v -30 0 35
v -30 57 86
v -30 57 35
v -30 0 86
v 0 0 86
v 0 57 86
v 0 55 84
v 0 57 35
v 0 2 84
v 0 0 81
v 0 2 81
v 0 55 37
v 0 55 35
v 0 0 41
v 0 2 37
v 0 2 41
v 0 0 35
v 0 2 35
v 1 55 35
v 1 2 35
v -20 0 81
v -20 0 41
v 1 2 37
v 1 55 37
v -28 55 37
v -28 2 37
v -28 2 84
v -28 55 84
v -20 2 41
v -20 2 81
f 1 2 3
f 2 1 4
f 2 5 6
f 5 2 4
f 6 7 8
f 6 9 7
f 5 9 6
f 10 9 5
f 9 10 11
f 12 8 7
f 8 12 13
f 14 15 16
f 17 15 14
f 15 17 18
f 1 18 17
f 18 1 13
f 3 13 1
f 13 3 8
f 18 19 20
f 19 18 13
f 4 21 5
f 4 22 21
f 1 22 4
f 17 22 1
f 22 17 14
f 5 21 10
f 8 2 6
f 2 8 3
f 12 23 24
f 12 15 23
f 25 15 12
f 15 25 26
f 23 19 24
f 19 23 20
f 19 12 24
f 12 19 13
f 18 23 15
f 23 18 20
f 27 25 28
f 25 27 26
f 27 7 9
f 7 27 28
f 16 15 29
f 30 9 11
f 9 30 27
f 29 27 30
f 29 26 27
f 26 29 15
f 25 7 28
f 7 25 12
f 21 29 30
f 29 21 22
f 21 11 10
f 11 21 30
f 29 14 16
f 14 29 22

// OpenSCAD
difference() {
    union() {
        translate([-30, 0, 35]) {
            cube([30, 57, 51]);
        }
        translate([-1, 2, 35]) {
            cube([2, 53, 2]);
        }
    }
    
    translate([-28, 2, 37]) {
        cube([31, 53, 47]);
    }
    
    translate([-20, -2, 41]) { 
        cube([21, 5, 40]);
    } 
}
